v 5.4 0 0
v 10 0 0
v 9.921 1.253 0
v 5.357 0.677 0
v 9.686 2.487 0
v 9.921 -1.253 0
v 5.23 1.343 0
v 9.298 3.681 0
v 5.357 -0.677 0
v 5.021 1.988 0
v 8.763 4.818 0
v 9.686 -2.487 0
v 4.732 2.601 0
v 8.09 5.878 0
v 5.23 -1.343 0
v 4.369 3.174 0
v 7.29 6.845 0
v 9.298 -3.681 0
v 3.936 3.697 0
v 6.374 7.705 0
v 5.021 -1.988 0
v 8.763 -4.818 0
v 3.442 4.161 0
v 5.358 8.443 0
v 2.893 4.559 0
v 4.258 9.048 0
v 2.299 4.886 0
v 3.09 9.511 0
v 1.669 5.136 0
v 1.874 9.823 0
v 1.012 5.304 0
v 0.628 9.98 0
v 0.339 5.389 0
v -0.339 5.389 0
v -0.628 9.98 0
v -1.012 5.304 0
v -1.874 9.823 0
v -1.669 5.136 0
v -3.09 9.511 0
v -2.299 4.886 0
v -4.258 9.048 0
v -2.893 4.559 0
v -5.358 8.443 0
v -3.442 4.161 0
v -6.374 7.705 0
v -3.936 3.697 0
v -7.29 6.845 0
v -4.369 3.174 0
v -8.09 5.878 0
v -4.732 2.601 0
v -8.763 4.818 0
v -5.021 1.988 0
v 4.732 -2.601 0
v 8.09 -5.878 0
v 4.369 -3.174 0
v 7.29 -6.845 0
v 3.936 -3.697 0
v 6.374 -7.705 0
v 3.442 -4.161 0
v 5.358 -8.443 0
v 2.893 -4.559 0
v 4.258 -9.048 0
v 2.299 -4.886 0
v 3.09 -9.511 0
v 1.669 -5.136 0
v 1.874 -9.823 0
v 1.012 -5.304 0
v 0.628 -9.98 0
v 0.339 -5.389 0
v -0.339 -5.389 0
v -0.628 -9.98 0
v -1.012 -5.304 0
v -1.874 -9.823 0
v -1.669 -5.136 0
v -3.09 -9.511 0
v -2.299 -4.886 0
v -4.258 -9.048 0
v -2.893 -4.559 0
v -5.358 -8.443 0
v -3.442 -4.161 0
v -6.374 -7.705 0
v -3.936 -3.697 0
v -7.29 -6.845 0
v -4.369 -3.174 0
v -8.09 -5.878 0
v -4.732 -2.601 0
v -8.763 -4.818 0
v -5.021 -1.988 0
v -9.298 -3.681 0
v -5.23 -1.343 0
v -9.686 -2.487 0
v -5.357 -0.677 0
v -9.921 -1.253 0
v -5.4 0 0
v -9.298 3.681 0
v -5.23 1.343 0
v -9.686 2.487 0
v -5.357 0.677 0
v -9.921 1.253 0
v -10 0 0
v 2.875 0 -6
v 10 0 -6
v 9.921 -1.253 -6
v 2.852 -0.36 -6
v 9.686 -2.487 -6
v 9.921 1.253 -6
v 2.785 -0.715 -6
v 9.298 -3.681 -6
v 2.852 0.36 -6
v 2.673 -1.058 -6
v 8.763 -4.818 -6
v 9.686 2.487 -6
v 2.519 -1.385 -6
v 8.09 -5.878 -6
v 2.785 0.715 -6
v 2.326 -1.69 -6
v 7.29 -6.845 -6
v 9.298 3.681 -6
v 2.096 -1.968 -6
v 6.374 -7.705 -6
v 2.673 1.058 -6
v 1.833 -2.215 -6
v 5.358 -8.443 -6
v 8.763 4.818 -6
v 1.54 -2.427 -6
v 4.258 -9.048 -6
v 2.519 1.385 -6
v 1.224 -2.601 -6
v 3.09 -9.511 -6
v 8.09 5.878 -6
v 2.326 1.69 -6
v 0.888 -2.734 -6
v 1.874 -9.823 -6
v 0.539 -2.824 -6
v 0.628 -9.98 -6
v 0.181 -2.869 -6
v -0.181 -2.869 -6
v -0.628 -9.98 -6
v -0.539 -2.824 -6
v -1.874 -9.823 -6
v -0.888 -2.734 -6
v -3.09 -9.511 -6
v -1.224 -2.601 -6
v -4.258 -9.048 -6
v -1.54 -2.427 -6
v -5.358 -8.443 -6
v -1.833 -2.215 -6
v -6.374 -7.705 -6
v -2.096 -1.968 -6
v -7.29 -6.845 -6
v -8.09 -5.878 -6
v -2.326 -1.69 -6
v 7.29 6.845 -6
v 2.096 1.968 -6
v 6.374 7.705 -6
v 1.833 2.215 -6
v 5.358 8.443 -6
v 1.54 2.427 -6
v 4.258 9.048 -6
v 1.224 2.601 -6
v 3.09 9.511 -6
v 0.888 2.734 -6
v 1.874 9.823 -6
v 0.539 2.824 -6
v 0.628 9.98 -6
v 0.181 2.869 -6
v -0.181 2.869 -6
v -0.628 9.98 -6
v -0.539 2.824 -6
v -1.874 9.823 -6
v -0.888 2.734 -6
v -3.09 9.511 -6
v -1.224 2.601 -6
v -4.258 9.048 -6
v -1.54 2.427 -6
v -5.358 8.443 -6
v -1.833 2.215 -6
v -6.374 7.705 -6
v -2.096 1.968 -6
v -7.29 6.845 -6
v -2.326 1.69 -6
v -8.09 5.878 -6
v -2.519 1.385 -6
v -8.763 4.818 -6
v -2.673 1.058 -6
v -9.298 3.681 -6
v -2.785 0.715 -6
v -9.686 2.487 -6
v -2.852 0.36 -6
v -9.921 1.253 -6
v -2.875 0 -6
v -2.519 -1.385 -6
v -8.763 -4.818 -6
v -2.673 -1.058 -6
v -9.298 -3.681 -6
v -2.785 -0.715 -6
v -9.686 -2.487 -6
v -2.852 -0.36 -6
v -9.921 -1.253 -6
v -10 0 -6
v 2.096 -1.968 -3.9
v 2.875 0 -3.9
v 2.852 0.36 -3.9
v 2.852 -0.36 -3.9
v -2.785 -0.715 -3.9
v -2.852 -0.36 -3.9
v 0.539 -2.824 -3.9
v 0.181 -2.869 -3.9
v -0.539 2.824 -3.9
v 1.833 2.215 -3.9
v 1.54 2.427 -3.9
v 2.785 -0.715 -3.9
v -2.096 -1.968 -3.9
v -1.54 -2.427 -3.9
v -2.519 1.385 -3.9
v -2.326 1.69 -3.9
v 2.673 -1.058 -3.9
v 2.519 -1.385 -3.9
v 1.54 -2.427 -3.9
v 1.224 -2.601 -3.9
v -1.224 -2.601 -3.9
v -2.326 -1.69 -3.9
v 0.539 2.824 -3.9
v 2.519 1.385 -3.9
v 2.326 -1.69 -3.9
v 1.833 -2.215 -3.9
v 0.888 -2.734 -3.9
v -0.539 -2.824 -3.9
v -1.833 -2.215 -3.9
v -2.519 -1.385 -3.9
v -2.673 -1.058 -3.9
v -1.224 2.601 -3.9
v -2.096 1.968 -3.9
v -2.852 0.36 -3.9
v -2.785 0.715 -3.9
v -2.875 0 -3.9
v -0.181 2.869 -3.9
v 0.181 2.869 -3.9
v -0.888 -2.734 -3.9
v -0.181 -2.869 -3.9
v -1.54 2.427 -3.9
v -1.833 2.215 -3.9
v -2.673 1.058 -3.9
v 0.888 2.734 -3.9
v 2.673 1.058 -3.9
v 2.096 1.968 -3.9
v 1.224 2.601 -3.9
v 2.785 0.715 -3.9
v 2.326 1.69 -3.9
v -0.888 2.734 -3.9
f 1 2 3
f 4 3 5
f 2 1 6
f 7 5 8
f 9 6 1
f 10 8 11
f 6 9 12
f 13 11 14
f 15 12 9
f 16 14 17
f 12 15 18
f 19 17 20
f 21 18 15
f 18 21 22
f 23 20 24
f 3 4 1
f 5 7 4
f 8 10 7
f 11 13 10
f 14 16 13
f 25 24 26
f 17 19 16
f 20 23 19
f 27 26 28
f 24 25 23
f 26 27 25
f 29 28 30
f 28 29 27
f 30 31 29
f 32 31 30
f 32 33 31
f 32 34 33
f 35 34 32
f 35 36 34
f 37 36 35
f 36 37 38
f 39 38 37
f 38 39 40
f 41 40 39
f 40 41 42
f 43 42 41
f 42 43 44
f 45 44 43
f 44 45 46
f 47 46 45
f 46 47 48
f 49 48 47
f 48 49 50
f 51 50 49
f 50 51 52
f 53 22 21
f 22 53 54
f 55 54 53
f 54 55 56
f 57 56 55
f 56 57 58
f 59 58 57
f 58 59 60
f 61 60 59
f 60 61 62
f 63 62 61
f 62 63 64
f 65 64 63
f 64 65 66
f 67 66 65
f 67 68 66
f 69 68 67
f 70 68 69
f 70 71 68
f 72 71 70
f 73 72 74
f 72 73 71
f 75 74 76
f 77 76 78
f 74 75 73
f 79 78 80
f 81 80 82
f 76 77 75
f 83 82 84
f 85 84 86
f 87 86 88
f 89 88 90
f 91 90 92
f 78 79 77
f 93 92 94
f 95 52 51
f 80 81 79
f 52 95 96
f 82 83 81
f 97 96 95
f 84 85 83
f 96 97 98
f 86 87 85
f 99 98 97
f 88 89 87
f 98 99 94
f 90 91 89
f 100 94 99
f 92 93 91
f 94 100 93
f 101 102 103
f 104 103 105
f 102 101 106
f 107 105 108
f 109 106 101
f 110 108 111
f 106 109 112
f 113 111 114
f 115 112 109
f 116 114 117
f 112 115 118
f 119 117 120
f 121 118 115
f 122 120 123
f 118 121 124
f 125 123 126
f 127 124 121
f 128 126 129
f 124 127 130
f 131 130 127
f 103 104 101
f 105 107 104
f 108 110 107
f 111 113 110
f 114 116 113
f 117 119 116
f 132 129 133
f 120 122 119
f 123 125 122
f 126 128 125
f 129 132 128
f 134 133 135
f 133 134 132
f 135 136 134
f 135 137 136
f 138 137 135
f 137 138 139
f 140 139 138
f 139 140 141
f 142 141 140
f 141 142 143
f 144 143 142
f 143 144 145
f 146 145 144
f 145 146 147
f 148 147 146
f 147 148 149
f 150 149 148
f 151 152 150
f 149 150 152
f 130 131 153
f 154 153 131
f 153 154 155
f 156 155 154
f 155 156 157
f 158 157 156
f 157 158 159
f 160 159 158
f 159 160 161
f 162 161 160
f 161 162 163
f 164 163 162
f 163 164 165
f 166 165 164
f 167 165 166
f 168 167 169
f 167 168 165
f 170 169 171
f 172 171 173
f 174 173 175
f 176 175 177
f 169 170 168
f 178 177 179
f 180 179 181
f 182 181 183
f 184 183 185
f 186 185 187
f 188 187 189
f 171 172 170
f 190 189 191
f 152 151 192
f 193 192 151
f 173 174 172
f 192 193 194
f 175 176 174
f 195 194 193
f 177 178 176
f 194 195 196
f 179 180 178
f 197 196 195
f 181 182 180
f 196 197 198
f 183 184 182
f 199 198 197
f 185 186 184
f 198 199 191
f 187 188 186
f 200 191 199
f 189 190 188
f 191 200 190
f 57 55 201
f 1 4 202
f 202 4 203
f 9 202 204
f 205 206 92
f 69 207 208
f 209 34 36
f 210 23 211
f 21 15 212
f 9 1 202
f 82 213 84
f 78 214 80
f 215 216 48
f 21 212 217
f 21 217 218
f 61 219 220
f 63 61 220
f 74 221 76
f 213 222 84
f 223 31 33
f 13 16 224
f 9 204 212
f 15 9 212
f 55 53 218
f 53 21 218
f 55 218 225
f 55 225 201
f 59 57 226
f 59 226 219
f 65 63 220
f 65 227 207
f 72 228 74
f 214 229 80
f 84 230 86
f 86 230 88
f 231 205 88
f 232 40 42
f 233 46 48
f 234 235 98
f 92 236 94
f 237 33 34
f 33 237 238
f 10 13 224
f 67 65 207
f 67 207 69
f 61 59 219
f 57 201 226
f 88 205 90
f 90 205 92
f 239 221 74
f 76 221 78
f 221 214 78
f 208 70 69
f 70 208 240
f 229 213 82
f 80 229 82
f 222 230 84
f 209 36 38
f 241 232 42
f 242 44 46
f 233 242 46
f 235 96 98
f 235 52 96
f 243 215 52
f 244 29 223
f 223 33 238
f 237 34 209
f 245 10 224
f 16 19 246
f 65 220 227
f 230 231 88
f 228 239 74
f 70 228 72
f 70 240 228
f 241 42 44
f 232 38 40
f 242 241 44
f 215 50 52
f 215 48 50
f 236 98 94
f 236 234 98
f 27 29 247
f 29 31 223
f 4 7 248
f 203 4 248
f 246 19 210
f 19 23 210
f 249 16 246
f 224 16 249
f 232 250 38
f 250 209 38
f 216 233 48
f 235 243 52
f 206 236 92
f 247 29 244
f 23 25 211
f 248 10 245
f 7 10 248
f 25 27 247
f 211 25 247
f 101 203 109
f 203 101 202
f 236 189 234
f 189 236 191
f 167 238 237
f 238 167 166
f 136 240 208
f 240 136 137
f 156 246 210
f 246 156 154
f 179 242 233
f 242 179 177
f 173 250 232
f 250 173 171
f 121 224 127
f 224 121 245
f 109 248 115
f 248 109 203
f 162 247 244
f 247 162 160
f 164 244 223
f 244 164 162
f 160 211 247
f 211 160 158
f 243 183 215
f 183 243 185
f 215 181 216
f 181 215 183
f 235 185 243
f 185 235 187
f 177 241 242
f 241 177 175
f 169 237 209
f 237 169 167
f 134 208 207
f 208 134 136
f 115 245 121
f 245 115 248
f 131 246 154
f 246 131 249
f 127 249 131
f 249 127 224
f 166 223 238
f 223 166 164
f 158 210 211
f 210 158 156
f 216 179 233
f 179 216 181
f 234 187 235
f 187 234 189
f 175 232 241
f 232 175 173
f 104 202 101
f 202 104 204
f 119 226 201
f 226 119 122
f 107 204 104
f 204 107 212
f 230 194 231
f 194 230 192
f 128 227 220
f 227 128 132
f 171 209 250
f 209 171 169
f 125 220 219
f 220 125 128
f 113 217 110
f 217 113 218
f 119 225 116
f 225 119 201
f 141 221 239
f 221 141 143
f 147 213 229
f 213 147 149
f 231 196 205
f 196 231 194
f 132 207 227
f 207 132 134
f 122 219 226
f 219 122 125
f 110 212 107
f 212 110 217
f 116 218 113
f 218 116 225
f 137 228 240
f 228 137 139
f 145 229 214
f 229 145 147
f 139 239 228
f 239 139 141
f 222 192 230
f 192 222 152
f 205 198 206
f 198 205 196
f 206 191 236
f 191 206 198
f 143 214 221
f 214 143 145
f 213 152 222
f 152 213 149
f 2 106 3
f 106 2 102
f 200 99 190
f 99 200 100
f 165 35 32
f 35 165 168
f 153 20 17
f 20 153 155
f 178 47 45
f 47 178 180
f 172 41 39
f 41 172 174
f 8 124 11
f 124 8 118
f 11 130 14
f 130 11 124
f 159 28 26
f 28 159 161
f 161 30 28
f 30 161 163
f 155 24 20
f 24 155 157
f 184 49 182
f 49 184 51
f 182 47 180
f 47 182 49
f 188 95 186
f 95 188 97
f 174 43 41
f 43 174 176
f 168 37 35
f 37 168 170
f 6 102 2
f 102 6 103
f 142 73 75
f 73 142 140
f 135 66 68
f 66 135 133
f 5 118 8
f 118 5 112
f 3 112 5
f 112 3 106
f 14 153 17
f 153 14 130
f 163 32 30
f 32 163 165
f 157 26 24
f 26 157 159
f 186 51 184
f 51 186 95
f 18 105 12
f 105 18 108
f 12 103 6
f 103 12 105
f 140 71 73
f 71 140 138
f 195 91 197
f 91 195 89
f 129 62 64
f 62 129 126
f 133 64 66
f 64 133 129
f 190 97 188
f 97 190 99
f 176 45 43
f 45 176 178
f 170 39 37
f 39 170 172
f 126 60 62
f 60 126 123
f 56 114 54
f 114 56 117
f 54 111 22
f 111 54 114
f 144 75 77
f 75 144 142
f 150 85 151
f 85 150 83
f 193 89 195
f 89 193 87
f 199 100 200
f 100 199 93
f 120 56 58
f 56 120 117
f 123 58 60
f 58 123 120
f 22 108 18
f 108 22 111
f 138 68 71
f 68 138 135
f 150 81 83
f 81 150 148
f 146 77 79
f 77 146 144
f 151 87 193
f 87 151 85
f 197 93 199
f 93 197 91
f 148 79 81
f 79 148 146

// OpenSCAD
$fn = 50;


difference() {
	union() {
		translate(v = [0, 0, -6.0000000000]) {
			cylinder(h = 6, r = 10.0000000000);
		}
		cylinder(h = 0, r = 20.0000000000);
	}
	union() {
		translate(v = [0, 0, 0]) {
			rotate(a = [0, 0, 0]) {
				difference() {
					union() {
						#translate(v = [0, 0, -6.0000000000]) {
							cylinder(h = 6, r = 2.6000000000);
						}
						#translate(v = [0, 0, -3.9000000000]) {
							cylinder(h = 3.9000000000, r = 10.0000000000, r1 = 2.8750000000, r2 = 5.4000000000);
						}
						#translate(v = [0, 0, -6.0000000000]) {
							cylinder(h = 6, r = 2.8750000000);
						}
						#translate(v = [0, 0, -6.0000000000]) {
							cylinder(h = 6, r = 2.6000000000);
						}
					}
					union();
				}
			}
		}
	}
}
